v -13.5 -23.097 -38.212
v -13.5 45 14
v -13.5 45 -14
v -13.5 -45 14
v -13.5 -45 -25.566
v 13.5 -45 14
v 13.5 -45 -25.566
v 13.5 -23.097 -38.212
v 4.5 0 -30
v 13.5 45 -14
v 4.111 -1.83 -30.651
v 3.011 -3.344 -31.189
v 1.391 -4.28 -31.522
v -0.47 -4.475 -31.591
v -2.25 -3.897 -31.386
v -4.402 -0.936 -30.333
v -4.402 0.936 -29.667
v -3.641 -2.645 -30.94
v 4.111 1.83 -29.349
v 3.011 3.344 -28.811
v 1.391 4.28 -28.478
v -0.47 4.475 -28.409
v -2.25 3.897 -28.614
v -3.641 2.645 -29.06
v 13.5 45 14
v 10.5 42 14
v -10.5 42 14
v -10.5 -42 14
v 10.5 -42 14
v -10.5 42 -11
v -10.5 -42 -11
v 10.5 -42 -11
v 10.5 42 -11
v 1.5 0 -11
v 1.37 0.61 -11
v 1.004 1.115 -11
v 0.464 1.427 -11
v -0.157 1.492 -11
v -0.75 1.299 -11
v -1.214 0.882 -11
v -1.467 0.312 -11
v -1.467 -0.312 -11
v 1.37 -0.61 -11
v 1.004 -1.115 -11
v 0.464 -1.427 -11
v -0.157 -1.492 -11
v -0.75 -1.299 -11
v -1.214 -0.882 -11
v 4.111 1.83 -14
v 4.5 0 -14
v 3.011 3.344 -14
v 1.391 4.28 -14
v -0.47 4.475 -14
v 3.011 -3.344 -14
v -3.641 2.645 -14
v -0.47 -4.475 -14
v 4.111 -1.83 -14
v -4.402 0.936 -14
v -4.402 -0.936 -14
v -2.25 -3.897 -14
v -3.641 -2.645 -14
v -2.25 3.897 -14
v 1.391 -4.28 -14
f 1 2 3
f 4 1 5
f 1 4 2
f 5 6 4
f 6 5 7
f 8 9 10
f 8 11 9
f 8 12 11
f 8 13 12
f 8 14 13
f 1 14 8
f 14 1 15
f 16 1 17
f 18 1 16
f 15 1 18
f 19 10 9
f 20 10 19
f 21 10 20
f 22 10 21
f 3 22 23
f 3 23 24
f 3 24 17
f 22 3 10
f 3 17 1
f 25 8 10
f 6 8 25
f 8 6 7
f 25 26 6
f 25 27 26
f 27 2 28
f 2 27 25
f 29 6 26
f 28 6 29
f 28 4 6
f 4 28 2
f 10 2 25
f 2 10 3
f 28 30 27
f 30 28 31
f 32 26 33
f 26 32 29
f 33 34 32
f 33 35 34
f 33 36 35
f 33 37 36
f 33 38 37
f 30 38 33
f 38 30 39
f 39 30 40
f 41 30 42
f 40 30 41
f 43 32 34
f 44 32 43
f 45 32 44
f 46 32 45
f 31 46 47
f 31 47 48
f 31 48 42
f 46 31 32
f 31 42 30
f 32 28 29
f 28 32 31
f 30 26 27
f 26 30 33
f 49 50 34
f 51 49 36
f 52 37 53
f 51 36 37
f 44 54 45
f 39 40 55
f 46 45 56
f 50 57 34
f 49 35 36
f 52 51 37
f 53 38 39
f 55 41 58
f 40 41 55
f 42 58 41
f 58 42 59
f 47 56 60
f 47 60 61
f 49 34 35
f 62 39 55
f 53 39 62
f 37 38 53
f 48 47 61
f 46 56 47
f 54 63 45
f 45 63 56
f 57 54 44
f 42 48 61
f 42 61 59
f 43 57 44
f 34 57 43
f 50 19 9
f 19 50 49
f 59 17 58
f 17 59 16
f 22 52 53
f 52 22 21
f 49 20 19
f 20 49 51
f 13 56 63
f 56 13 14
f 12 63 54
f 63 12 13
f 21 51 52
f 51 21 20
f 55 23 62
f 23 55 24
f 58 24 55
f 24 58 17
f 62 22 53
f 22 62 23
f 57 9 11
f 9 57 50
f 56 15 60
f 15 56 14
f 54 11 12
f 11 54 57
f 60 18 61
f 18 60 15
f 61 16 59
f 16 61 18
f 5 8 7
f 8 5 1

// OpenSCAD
wallWidth = 3;
length = 84;
width = 21;
height = 22;
angle = 20;

difference() {
    union(){
        rotate([180,0,0]){
            translate([0, 0, height+wallWidth]){
                prism(wallWidth * 2 + width, length + wallWidth * 2, height); 
            }   
        }
        
        cube([width + (wallWidth*2), length + (wallWidth*2), height + (wallWidth*2)], true);
    }
    
    translate([0, 0, wallWidth]){
        cube([width, length, height+(wallWidth * 2)], true);
    }
    
    translate([0, 0, -12.5]){
        cylinder(3, 4.5, 1.5, true);
    }
    
    translate([0, 0, -height-wallWidth]){
        cylinder(height, 4.5, 4.5, true);
    }
    
    translate([0,-40,-40]){
    rotate([60,0,0]){
    cube([width + wallWidth * 2, 20, 50], true);
}
}
}

module prism(l, w, h){
    polyhedron(
        points=[-[l,w,h], [l,-w,-h], [l,w,-h], [-l,w,-h], [-l,w,h+angle], [l,w,h+angle]]/2,
        faces=[[0,1,2,3],[5,4,3,2],[0,4,5,1],[0,3,4],[5,2,1]]
    );
}
